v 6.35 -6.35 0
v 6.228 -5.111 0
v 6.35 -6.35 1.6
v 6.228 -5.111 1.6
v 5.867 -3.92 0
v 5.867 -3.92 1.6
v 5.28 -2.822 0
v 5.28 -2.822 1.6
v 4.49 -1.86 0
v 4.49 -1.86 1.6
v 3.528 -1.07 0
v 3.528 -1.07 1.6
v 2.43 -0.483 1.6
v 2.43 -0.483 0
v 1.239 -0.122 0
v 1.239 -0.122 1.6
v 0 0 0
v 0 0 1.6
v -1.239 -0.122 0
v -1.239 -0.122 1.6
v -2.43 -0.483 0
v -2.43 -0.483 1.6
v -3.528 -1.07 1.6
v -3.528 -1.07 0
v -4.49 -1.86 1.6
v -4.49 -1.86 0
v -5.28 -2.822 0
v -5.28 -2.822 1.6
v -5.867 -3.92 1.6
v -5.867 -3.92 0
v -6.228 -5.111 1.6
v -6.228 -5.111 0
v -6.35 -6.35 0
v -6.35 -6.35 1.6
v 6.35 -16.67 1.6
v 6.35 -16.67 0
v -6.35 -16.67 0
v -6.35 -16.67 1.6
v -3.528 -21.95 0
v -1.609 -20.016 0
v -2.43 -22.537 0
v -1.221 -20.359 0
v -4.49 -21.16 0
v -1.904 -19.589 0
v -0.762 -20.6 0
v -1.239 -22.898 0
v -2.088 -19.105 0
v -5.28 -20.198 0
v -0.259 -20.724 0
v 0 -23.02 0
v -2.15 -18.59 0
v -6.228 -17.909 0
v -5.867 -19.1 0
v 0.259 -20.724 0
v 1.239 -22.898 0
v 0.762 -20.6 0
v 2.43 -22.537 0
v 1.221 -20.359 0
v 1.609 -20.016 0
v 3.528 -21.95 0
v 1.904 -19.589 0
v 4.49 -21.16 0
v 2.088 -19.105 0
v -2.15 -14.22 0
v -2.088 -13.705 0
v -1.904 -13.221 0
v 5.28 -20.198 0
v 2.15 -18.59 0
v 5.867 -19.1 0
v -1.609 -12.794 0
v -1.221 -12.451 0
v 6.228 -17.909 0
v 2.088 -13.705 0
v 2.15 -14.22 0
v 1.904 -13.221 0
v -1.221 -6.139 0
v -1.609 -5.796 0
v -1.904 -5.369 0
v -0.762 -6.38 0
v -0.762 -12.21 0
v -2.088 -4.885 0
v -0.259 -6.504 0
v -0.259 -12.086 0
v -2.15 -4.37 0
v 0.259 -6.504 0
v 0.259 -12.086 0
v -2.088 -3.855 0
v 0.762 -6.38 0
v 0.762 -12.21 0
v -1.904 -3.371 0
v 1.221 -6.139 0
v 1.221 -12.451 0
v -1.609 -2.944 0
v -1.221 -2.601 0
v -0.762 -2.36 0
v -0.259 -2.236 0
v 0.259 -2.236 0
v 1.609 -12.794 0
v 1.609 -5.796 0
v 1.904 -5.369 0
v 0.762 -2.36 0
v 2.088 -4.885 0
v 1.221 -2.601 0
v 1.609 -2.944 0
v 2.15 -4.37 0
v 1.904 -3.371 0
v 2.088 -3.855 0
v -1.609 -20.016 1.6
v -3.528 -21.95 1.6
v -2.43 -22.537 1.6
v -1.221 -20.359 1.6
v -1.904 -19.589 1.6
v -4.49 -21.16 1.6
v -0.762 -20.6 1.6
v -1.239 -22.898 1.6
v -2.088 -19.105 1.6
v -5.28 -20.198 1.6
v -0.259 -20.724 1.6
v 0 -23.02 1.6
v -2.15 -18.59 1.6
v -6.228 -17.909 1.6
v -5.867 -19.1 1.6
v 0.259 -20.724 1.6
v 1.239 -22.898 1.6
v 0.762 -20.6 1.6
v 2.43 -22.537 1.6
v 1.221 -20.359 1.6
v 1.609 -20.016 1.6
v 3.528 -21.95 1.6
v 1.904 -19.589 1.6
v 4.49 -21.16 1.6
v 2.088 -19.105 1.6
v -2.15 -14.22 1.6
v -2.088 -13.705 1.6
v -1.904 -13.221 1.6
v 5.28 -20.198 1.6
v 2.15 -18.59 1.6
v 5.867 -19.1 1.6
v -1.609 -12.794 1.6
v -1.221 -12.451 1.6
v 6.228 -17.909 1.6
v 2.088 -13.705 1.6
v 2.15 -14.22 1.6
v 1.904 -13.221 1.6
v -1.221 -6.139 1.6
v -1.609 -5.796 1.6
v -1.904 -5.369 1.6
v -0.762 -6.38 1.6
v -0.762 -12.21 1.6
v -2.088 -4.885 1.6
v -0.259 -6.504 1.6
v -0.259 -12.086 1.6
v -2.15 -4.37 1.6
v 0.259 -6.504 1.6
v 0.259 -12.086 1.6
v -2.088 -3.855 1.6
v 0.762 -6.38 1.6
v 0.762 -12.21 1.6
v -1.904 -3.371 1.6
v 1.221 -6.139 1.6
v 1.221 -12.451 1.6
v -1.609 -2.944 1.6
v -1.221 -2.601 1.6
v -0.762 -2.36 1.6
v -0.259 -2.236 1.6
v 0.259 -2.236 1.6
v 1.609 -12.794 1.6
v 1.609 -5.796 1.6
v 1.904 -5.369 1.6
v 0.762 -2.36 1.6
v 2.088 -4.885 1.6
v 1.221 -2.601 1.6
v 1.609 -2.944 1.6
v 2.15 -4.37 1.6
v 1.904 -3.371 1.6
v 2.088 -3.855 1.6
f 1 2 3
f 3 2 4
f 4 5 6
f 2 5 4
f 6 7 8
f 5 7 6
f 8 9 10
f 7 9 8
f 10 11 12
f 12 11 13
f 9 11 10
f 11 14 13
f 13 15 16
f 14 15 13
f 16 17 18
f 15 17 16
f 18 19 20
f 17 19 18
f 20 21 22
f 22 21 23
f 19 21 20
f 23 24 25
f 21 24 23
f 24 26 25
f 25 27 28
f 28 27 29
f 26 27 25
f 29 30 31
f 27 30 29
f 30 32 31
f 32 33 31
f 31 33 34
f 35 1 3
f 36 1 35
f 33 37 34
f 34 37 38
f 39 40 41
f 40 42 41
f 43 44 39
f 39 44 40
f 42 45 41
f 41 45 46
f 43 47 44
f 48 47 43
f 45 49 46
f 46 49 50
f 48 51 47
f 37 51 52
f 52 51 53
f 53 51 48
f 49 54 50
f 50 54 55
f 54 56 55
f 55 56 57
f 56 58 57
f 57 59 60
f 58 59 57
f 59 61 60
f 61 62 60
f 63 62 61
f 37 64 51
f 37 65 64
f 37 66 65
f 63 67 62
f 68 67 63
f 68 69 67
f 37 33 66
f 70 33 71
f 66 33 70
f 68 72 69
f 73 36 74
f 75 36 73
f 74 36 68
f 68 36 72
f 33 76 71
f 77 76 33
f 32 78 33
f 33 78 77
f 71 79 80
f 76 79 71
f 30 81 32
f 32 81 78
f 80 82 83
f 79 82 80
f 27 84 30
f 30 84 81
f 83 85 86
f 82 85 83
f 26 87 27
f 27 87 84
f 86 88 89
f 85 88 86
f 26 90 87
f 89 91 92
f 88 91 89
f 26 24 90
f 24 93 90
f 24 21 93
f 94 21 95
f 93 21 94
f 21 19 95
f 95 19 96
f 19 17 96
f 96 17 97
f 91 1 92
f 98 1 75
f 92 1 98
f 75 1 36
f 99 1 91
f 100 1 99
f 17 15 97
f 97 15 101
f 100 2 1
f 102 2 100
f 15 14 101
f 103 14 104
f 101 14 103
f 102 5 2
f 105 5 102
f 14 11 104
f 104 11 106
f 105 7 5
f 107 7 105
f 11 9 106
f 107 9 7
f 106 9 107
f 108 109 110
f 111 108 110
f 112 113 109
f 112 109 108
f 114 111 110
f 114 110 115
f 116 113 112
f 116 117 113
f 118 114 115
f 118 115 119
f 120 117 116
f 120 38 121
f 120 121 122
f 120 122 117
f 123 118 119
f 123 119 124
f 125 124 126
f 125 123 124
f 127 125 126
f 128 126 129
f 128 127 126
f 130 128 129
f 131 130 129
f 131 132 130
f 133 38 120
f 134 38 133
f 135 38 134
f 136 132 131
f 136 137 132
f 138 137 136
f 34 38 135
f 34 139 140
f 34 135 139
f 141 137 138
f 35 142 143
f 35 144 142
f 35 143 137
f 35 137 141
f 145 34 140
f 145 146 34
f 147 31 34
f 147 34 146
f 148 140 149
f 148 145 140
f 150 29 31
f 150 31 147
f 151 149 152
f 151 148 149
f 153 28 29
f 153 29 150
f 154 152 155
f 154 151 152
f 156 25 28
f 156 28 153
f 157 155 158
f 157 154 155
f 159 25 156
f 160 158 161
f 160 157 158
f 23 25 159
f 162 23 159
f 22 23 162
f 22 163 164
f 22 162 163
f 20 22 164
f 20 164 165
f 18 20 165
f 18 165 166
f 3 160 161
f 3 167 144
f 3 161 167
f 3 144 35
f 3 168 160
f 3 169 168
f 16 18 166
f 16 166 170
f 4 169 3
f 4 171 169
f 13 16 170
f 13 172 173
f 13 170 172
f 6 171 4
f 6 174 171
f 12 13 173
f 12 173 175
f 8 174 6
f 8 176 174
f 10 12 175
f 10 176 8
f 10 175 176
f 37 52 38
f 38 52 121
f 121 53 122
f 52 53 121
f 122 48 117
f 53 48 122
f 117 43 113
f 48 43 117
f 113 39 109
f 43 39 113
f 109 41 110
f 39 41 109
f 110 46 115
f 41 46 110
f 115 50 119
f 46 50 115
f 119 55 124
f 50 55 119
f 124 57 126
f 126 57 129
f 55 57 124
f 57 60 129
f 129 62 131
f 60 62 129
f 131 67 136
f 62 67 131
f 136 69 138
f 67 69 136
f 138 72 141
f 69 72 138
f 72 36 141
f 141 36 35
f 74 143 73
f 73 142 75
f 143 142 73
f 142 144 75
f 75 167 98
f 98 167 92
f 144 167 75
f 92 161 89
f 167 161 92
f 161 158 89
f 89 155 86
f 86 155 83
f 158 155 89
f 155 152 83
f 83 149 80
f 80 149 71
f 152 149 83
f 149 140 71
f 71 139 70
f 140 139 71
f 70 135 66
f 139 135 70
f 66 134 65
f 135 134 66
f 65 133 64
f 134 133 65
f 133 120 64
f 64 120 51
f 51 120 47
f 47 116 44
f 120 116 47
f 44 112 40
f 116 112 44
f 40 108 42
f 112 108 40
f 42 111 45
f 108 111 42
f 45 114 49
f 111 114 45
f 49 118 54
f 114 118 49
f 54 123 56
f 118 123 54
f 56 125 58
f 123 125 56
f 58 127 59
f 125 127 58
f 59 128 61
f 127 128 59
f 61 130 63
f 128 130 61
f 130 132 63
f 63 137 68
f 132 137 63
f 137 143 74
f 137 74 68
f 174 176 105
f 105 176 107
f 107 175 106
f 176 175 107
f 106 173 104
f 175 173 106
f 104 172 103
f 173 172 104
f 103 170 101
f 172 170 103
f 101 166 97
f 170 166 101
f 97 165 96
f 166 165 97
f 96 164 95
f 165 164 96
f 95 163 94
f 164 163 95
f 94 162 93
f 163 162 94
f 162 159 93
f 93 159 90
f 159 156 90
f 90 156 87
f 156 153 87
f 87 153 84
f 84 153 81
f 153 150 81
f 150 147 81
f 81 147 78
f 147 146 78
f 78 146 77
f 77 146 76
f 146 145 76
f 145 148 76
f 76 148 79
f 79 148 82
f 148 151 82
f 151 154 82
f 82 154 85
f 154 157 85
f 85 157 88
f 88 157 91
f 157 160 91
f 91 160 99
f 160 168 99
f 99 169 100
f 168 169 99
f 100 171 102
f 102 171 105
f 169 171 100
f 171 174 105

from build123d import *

# Parameters (mm, degrees)
PAD_DEPTH       = 1.6
SKETCH001_R     = 2.15
POCKET_DEPTH    = 1.601
POCKET001_DEPTH = 1.601


with BuildPart() as part:
    # Sketch → Pad (new body)
    with BuildSketch(Plane.XY):
        with BuildLine():
            ThreePointArc((6.35, -6.35), (0, 0), (-6.35, -6.35))
            Line((-6.35, -6.35), (-6.35, -16.67))
            ThreePointArc((-6.35, -16.67), (0, -23.02), (6.35, -16.67))
            Line((6.35, -6.35), (6.35, -16.67))
        make_face()
    extrude(amount=PAD_DEPTH)

    # Sketch001 (on Face6 of Pad) → Pocket (cut, through all)
    with BuildSketch(Plane.XY.offset(1.6)):
        with Locations((0, -4.37)):
            Circle(SKETCH001_R)
    extrude(amount=-POCKET_DEPTH, mode=Mode.SUBTRACT)

    # Sketch002 (on Face5 of Pocket) → Pocket001 (cut, through all)
    with BuildSketch(Plane.XY.offset(1.6)):
        with BuildLine():
            ThreePointArc((2.15, -14.22), (0, -12.07), (-2.15, -14.22))
            Line((-2.15, -14.22), (-2.15, -18.59))
            ThreePointArc((-2.15, -18.59), (0, -20.74), (2.15, -18.59))
            Line((2.15, -14.22), (2.15, -18.59))
        make_face()
    extrude(amount=-POCKET001_DEPTH, mode=Mode.SUBTRACT)


solid = part.part
